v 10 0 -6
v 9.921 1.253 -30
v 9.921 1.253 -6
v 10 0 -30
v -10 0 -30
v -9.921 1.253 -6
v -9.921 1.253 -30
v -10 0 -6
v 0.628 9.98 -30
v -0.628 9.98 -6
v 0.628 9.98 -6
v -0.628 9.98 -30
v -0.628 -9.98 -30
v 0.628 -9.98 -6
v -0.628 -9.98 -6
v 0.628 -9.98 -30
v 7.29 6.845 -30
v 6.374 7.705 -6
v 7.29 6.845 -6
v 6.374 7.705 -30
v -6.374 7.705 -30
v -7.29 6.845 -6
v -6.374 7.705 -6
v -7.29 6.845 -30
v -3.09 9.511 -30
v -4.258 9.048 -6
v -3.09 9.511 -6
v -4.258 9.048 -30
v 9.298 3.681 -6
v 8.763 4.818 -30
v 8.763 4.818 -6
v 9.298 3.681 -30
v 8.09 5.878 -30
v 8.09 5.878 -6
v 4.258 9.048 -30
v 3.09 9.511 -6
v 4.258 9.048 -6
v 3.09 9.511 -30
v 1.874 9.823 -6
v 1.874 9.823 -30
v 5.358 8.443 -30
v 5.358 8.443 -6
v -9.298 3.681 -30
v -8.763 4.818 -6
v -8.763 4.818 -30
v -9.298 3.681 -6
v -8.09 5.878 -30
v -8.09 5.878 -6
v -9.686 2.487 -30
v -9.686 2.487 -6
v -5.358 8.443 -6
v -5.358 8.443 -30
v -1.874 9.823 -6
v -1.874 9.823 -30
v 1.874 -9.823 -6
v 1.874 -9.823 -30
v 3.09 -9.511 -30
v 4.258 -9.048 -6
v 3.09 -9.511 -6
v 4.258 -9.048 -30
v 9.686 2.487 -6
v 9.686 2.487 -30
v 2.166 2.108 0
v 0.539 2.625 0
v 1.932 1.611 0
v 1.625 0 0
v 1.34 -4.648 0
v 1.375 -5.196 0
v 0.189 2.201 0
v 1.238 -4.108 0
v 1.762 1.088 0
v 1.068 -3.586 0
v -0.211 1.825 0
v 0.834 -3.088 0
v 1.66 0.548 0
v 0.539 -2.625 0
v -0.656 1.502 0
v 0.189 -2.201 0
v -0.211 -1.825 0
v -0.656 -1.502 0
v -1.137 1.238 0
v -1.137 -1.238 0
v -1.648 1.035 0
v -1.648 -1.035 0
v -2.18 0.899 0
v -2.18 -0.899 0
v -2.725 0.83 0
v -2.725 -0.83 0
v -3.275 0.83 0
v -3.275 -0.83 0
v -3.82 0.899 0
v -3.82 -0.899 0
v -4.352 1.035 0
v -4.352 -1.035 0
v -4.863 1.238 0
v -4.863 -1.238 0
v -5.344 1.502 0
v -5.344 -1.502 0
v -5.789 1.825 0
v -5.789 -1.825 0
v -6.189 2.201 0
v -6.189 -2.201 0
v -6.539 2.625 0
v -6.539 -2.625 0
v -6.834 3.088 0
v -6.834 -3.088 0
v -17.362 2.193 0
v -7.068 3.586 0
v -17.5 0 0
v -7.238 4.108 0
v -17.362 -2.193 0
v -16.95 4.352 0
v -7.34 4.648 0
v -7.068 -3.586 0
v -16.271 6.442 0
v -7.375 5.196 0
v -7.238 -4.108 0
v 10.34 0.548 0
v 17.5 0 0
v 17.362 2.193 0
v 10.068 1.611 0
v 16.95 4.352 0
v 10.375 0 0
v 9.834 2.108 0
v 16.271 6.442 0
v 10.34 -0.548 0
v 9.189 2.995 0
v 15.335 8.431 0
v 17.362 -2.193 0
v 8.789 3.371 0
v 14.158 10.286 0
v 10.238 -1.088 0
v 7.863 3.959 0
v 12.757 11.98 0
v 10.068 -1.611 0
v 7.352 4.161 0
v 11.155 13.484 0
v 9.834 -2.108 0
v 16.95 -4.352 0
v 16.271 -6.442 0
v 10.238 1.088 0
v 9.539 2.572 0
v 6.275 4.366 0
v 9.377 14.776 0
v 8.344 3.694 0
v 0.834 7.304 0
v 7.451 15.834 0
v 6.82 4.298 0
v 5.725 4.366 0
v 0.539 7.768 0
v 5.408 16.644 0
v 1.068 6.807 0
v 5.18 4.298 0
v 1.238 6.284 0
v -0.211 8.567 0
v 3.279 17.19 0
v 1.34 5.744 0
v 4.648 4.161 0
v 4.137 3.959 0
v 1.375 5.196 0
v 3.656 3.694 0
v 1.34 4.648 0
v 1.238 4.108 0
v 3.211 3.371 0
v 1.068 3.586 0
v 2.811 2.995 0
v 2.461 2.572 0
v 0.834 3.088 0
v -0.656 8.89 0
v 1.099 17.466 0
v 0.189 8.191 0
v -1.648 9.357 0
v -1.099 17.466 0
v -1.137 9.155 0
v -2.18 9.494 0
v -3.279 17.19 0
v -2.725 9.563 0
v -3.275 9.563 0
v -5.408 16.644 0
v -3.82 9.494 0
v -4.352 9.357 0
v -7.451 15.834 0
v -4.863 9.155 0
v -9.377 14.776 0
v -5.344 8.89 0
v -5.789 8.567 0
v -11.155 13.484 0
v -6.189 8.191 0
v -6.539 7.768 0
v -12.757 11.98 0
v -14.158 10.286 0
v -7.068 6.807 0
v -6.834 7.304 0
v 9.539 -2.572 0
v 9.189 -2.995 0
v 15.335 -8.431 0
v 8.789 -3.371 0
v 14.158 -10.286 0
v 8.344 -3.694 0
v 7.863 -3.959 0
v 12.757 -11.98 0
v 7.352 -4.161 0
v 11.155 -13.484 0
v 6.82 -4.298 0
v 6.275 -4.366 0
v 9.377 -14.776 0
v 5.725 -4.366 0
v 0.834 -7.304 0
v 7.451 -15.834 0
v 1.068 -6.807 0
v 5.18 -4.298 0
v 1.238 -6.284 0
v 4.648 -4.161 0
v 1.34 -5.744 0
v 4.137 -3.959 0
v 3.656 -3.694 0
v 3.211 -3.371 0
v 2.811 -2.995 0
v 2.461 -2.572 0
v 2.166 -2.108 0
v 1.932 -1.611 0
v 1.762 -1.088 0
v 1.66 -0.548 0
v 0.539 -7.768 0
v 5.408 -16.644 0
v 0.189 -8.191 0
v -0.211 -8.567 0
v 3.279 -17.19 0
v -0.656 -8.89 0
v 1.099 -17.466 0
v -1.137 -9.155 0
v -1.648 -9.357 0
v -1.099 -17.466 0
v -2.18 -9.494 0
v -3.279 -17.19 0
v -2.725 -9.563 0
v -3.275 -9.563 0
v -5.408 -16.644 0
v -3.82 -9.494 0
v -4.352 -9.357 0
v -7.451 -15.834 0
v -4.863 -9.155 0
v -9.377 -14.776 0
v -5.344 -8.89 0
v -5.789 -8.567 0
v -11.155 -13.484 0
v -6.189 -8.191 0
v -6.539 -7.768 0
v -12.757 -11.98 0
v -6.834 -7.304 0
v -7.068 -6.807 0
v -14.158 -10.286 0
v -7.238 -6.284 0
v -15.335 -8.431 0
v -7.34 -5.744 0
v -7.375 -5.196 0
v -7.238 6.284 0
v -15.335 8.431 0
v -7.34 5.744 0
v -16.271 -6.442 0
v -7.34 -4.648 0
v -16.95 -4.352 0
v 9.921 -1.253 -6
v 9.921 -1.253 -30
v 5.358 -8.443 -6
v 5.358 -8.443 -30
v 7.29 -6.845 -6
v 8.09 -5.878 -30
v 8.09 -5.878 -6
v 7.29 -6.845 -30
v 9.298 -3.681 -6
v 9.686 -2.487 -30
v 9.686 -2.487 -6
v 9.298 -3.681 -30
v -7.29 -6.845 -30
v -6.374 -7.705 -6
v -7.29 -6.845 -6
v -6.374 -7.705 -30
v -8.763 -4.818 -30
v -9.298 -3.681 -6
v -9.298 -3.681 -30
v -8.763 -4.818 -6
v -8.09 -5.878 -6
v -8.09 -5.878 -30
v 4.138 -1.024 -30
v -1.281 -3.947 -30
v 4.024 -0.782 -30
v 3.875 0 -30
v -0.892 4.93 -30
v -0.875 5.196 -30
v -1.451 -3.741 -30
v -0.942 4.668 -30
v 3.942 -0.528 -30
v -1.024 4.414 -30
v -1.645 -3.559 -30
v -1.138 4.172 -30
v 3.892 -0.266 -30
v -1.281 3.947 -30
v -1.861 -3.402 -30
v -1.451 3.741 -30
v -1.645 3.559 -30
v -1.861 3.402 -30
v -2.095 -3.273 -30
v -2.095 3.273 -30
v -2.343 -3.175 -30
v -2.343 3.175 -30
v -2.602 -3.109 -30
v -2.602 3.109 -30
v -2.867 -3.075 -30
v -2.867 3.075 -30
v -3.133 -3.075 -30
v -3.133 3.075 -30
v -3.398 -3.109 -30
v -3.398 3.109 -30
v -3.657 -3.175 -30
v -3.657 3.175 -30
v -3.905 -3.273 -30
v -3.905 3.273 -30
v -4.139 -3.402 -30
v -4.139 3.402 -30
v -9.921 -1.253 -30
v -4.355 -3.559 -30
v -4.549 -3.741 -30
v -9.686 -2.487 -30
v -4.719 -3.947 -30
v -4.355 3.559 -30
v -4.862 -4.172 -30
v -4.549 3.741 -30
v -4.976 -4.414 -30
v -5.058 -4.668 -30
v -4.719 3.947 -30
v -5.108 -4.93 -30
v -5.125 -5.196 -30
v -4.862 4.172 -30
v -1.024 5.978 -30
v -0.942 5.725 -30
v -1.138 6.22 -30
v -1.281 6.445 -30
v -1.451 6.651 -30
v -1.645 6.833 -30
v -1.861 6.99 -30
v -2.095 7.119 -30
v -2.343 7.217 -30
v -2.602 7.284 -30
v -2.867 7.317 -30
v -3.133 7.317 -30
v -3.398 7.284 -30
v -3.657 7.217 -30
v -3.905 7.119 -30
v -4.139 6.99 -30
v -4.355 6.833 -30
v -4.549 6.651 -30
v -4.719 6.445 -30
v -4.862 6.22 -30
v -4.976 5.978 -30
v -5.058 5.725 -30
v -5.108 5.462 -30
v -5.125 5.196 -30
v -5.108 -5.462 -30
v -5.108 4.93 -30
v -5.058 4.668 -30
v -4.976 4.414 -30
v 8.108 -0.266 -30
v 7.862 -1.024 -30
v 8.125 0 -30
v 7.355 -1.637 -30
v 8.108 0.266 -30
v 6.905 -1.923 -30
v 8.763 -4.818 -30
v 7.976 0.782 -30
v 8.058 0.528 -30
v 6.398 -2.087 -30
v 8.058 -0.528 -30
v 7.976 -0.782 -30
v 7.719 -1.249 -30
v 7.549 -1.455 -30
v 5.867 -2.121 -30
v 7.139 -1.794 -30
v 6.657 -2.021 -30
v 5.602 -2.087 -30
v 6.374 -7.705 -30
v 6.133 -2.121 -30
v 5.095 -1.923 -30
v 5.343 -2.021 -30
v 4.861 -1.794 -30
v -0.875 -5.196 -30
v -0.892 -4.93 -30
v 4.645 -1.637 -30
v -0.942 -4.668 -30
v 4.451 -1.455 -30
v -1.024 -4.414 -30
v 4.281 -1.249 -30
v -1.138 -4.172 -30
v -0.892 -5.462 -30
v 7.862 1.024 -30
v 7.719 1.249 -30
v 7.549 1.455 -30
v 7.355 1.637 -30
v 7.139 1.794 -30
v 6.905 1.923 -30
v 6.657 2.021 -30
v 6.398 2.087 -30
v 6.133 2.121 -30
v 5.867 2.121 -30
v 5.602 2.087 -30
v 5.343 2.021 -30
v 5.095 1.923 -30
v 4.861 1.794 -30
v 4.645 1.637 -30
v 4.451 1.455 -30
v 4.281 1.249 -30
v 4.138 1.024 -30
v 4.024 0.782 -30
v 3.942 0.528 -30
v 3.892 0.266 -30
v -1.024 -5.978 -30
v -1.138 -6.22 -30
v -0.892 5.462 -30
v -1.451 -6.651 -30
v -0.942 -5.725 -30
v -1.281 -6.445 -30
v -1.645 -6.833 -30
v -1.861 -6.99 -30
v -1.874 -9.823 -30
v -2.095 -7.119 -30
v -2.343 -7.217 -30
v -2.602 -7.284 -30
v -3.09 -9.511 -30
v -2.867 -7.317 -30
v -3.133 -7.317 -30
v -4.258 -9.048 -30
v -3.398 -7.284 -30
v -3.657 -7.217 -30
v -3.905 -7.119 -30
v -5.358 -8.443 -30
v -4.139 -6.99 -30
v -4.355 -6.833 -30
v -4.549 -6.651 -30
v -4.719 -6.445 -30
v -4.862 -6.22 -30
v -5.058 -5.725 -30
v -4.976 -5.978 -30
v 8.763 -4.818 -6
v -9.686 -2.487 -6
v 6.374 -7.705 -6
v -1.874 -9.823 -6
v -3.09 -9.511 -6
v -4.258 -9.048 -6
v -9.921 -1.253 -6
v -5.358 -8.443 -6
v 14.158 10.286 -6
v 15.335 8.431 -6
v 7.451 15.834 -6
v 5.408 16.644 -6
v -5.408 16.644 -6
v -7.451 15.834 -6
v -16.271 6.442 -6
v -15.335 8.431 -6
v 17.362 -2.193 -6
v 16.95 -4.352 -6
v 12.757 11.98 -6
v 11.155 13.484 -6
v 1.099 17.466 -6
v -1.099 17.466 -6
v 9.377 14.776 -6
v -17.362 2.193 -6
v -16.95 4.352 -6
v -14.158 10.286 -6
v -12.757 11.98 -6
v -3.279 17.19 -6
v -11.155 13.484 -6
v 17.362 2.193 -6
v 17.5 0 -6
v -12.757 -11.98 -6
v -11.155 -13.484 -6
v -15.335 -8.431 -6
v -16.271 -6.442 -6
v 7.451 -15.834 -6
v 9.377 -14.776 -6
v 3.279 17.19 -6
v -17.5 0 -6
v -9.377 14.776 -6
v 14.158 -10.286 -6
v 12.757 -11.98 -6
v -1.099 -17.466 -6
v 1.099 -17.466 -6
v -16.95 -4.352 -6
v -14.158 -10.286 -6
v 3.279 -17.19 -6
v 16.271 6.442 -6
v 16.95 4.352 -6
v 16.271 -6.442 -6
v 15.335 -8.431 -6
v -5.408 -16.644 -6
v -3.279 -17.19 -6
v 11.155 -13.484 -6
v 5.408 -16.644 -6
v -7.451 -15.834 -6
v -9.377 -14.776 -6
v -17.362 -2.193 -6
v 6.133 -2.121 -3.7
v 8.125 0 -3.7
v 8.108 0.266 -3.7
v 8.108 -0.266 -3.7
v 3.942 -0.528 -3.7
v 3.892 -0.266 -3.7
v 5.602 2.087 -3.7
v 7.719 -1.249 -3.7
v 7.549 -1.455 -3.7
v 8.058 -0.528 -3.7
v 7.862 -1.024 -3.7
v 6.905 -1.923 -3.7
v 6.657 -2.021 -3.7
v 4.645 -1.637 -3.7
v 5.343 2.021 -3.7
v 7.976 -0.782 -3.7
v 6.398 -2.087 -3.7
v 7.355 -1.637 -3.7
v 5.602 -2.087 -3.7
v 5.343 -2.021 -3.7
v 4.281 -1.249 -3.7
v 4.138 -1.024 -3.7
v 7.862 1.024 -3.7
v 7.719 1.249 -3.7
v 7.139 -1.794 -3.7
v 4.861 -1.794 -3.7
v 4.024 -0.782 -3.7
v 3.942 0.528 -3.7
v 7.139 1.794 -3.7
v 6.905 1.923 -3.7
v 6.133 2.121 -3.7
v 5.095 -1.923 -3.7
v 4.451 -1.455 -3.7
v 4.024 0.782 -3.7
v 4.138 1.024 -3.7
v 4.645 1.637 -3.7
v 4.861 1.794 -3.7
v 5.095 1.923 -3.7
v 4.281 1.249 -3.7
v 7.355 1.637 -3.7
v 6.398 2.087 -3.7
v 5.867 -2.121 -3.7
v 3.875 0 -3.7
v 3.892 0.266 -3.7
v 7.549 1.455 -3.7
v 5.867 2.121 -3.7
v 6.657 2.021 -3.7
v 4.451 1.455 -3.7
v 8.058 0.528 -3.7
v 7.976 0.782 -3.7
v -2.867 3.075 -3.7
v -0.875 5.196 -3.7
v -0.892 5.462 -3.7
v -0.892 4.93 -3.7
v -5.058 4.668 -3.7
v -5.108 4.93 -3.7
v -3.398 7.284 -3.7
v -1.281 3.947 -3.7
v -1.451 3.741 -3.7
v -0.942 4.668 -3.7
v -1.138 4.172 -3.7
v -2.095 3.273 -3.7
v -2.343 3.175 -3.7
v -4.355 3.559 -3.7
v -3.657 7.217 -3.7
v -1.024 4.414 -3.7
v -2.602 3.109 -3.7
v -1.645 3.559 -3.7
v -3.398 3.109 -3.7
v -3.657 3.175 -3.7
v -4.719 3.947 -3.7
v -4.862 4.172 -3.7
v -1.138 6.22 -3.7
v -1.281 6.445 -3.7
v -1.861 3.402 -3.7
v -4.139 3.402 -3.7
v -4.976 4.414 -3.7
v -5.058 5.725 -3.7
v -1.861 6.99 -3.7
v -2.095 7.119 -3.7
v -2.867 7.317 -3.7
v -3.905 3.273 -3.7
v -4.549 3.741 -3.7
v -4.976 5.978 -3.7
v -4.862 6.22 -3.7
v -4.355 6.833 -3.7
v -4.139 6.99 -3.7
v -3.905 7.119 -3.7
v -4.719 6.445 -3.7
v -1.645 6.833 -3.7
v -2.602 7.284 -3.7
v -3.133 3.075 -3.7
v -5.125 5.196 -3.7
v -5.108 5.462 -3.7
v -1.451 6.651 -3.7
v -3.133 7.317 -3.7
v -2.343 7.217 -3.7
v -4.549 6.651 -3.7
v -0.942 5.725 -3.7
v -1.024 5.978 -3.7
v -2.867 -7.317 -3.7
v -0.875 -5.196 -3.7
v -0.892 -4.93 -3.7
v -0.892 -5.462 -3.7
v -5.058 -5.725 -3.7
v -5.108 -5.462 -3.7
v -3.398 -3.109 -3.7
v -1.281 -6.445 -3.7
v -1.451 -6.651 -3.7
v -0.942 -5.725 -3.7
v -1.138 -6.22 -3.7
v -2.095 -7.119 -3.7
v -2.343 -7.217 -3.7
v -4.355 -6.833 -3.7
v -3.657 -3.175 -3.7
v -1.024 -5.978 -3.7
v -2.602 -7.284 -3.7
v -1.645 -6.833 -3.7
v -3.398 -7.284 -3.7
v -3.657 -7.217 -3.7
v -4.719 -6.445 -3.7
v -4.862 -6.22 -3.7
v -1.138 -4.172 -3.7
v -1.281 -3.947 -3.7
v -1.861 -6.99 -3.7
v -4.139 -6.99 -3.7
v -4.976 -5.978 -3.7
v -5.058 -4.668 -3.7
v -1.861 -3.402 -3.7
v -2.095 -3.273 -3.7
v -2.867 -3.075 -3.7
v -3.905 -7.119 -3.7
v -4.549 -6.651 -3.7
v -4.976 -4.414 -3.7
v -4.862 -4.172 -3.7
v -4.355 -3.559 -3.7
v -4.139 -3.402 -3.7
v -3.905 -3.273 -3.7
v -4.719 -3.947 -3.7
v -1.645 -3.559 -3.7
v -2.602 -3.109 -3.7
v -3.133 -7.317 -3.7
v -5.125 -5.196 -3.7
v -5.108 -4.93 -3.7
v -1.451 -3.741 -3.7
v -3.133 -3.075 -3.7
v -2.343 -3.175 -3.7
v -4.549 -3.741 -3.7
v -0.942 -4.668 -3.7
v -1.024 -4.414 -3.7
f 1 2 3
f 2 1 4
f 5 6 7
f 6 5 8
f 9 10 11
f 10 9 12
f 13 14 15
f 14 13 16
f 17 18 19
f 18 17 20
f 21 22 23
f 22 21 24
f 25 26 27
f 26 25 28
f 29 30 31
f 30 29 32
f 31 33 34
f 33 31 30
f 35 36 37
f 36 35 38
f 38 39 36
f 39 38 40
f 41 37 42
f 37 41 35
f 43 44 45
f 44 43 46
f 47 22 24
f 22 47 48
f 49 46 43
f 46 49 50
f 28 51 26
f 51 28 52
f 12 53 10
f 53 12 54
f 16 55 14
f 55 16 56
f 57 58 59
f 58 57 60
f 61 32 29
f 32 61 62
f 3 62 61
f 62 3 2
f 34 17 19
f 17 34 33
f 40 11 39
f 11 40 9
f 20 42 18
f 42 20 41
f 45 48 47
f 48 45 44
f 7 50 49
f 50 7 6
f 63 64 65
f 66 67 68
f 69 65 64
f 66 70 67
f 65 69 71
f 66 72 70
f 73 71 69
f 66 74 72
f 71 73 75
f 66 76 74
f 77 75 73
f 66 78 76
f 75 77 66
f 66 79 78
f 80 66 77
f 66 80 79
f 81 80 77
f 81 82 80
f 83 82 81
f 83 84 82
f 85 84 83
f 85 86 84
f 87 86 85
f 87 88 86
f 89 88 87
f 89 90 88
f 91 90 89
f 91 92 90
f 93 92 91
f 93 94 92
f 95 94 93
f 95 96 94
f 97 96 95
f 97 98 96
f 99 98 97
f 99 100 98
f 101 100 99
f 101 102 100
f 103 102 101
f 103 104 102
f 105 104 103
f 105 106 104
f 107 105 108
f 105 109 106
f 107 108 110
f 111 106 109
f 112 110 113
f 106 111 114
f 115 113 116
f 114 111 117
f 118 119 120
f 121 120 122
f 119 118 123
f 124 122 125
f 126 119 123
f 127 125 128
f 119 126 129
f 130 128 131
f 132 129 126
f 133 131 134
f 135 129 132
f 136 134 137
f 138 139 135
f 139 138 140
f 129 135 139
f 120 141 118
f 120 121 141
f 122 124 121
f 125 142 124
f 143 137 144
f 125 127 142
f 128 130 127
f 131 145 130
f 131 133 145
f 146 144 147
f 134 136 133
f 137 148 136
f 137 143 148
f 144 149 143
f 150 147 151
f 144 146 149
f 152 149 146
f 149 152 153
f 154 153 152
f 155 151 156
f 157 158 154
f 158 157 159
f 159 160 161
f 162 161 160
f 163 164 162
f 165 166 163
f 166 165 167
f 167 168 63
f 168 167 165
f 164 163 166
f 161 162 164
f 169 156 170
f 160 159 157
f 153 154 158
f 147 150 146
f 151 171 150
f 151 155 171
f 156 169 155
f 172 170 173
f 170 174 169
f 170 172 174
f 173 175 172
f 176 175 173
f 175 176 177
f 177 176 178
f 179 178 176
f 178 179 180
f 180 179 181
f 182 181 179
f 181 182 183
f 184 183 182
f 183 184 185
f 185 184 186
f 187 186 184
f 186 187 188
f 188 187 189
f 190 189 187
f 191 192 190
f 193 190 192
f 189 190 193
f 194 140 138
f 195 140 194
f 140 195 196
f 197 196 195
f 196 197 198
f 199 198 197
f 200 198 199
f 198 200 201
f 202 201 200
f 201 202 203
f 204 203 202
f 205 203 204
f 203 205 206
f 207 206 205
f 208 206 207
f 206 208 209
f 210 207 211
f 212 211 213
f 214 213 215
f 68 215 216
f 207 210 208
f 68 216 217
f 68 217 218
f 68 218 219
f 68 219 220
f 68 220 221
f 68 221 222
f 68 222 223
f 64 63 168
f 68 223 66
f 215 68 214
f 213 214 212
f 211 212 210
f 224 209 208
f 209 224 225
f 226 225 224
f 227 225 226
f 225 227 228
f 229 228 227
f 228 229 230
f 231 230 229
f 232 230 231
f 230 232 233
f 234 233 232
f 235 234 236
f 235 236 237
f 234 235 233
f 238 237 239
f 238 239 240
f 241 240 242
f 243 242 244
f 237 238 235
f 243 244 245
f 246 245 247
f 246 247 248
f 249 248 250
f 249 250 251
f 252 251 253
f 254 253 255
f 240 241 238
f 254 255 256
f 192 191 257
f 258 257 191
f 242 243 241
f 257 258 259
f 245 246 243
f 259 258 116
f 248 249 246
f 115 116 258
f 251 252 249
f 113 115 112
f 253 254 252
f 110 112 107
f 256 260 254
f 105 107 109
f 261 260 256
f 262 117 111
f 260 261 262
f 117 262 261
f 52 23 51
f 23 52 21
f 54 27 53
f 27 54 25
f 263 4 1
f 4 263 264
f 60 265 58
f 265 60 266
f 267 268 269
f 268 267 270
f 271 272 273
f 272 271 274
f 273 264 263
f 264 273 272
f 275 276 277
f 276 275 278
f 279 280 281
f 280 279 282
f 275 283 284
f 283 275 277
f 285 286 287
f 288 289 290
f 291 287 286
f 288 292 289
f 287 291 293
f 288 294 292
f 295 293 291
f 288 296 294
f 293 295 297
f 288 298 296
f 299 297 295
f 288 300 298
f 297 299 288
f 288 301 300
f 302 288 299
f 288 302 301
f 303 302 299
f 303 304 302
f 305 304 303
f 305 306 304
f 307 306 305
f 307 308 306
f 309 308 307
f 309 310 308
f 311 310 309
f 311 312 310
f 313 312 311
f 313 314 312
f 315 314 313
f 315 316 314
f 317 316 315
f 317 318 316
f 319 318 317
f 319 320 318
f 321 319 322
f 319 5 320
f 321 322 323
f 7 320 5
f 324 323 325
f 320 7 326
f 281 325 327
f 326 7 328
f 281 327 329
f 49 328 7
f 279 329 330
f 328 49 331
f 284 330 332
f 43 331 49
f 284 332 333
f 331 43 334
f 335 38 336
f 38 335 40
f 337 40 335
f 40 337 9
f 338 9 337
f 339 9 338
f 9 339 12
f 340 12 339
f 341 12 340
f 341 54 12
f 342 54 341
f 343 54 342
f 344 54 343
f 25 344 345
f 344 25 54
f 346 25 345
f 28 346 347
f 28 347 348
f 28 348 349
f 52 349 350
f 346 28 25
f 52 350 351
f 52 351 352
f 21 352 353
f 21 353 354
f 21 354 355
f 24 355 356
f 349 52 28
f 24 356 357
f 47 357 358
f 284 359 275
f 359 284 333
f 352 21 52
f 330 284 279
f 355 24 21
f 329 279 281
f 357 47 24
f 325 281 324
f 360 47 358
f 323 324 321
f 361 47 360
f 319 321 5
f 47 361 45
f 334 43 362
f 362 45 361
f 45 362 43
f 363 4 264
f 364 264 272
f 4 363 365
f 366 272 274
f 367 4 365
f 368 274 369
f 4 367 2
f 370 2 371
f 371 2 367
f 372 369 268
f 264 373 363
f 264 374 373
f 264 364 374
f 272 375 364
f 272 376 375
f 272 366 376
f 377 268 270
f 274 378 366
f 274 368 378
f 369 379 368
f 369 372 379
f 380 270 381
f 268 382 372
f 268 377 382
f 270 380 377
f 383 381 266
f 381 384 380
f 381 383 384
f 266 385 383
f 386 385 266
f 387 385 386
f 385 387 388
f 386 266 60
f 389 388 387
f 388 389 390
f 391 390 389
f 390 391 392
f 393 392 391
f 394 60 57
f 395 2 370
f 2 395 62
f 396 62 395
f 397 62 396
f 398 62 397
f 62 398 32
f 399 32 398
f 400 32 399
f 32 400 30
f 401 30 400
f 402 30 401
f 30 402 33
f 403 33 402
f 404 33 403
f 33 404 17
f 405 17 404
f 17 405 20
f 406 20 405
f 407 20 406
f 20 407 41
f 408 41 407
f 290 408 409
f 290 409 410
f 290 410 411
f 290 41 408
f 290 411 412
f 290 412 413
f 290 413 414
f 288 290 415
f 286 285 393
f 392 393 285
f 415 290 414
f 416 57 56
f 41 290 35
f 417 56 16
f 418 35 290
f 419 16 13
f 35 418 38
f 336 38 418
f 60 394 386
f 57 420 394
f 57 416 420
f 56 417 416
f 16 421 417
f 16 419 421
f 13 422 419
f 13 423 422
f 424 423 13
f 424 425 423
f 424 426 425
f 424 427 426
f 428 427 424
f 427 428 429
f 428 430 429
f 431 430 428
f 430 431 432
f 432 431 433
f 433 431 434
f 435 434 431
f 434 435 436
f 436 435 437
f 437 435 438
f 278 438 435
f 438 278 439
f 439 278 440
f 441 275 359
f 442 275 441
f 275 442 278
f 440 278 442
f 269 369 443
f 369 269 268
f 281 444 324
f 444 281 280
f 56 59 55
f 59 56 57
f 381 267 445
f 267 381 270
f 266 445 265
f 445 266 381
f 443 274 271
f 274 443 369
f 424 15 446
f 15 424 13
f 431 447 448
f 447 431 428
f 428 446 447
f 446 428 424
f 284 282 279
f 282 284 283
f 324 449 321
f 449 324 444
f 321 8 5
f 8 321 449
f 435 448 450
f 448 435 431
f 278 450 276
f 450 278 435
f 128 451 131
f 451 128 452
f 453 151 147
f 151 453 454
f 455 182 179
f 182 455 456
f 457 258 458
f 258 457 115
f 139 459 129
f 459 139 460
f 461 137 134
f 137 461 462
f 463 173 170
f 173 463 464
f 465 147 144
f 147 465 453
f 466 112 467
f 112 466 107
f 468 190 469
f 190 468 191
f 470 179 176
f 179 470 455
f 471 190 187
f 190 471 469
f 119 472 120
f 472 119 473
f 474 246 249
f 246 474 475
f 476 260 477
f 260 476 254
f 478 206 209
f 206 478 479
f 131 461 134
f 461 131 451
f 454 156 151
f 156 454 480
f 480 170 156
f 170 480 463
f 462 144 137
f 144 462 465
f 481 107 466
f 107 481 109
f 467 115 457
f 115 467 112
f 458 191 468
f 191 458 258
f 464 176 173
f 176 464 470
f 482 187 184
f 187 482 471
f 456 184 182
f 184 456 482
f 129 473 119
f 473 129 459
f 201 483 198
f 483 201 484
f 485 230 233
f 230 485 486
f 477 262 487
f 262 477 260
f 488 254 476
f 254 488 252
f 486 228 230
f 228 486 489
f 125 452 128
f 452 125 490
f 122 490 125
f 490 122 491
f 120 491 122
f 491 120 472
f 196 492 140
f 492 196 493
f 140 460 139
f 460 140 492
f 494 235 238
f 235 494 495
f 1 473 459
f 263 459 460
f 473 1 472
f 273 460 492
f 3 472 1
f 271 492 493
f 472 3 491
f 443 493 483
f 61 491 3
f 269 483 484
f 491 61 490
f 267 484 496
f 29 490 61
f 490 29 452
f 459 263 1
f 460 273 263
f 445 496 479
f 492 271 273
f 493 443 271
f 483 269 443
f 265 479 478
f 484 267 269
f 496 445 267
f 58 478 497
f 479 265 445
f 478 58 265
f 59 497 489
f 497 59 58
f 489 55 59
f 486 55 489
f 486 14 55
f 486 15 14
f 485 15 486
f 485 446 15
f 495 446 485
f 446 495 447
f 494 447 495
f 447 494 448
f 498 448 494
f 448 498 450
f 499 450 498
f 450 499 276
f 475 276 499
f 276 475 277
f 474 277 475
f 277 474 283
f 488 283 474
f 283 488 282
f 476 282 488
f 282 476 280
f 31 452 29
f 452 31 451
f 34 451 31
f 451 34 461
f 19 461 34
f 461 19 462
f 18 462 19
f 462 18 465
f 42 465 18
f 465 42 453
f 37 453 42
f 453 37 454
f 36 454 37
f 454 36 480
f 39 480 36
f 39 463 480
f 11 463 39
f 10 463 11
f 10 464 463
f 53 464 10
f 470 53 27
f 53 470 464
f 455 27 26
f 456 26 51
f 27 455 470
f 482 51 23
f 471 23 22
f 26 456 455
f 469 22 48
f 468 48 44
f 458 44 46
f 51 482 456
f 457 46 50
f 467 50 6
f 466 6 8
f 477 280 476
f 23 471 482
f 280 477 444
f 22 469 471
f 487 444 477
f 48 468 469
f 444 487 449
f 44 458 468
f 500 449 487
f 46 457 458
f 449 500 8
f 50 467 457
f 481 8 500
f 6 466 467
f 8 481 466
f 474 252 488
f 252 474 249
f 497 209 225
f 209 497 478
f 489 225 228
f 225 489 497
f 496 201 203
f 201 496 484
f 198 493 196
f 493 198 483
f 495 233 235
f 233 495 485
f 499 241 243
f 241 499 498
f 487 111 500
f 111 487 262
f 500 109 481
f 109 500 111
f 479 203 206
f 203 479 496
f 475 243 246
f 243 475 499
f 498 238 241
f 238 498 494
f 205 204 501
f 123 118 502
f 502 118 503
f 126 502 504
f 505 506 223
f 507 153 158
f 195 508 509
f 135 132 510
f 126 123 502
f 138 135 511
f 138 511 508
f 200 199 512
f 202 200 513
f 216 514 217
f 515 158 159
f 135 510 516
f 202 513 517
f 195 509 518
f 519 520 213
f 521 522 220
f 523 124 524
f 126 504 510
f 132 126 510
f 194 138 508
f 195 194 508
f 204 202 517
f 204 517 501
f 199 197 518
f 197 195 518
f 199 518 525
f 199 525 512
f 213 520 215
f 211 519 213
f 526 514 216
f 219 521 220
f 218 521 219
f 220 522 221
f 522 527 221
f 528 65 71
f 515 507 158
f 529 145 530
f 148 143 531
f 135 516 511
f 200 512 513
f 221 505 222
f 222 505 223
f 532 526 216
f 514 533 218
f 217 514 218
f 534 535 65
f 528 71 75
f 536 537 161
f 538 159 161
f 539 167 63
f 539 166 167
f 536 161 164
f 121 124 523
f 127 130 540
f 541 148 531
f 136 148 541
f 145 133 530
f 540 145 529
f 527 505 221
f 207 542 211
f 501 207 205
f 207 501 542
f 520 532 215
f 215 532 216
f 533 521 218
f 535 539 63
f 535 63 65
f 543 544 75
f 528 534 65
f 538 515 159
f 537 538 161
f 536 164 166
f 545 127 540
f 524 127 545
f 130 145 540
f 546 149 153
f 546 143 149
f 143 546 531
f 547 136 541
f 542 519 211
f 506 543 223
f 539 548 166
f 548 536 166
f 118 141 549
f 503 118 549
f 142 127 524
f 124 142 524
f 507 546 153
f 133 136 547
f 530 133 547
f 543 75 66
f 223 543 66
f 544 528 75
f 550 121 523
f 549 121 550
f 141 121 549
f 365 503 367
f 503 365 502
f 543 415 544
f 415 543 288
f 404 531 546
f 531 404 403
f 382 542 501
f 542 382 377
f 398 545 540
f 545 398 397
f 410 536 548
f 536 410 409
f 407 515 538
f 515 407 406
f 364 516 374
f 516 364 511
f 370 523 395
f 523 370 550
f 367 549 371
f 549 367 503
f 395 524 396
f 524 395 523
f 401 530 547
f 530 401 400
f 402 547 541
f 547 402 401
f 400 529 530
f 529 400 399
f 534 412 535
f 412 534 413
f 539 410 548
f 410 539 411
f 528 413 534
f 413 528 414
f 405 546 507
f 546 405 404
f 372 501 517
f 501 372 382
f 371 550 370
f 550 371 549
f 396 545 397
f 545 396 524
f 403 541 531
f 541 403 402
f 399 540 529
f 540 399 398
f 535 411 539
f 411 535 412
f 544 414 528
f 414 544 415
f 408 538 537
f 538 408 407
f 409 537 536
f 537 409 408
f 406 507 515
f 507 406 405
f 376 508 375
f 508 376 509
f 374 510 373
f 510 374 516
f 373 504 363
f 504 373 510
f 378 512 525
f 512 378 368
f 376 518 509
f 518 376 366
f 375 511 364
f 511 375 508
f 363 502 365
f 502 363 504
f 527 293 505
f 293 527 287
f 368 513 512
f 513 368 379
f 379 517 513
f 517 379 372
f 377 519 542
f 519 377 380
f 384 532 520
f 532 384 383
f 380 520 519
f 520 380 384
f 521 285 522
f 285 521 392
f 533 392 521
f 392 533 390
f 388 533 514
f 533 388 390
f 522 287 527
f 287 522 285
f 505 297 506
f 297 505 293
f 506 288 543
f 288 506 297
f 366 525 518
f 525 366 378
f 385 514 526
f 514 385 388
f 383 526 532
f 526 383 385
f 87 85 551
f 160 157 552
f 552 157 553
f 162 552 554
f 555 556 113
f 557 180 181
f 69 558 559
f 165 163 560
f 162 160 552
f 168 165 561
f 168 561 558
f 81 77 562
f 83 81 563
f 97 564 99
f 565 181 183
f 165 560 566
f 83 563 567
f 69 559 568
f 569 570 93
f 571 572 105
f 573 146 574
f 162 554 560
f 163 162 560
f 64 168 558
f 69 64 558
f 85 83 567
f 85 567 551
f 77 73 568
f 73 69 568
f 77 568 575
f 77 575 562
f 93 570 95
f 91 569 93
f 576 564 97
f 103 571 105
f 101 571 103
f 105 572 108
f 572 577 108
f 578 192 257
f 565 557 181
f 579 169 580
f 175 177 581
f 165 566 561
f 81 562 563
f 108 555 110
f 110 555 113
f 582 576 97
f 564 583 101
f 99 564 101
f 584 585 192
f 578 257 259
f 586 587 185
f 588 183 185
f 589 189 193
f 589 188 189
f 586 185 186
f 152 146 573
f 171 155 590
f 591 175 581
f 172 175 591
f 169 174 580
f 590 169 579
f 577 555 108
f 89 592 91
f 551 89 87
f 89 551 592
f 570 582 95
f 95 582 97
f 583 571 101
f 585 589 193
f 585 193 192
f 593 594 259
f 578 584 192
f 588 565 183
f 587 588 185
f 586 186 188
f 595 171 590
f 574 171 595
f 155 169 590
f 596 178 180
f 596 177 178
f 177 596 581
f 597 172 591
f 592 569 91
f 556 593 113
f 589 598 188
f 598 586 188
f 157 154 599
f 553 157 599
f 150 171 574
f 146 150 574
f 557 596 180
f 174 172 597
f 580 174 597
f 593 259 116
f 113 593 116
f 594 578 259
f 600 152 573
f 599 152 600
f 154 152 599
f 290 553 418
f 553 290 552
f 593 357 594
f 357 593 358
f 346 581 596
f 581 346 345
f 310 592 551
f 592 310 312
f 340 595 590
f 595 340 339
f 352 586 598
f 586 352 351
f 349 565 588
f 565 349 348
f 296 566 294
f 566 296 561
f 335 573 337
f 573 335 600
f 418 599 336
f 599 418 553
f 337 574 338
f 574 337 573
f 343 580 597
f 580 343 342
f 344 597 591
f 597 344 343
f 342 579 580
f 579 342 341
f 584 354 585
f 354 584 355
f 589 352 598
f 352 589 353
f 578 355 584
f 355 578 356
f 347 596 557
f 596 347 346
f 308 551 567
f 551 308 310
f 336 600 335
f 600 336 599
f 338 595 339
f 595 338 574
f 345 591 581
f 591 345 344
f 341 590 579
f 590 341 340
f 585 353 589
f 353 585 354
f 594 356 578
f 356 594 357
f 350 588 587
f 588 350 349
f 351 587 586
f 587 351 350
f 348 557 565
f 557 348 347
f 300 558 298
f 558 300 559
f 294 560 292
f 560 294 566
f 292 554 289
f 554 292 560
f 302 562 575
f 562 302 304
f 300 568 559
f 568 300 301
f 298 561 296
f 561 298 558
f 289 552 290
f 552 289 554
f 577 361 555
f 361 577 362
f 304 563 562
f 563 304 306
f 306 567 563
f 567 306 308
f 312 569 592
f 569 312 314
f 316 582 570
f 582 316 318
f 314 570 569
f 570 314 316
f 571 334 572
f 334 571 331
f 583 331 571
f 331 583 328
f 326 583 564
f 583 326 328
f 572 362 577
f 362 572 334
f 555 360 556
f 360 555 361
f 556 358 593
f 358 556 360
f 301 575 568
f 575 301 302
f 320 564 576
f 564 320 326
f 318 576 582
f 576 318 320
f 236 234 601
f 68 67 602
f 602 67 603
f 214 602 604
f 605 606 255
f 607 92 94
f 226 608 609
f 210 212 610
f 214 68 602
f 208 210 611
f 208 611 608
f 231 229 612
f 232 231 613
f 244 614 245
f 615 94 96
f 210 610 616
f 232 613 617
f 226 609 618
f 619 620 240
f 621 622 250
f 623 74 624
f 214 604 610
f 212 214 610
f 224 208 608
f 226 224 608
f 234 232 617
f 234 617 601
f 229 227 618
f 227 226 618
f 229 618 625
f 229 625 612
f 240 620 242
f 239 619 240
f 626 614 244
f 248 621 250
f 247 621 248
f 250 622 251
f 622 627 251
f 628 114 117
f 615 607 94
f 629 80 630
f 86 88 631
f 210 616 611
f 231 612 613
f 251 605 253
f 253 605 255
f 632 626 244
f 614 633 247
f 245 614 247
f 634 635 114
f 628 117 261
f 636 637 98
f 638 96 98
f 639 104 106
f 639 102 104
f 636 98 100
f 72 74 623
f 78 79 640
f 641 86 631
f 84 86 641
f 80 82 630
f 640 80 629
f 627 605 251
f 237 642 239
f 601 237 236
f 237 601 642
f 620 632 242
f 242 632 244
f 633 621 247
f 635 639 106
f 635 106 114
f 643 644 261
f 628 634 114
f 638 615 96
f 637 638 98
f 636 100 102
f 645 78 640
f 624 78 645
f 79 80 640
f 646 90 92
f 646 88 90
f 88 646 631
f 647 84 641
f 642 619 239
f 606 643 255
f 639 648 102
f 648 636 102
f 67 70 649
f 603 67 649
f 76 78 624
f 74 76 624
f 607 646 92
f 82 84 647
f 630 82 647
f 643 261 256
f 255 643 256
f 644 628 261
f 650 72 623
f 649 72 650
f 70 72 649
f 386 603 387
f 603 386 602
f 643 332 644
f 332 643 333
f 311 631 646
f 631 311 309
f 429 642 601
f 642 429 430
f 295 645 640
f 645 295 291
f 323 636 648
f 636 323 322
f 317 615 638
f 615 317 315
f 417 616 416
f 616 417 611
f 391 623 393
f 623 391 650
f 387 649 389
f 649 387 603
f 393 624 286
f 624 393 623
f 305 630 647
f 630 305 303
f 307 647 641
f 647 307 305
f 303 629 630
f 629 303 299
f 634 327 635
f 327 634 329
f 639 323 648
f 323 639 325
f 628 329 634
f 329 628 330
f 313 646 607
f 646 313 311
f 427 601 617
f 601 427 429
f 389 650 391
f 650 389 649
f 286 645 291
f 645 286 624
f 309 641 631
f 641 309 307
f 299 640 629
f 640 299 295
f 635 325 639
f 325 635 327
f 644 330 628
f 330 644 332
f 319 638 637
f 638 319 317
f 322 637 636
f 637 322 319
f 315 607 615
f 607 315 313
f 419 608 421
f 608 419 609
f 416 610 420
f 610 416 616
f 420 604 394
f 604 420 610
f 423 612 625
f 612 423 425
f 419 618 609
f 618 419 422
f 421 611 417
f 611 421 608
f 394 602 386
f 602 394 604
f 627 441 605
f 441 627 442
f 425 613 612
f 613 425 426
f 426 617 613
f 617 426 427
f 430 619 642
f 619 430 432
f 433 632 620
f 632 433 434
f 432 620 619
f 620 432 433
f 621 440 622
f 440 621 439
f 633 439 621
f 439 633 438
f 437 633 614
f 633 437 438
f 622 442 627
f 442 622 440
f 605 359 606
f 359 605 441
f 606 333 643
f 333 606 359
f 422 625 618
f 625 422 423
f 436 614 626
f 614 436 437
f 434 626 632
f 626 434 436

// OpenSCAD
$fn = 50;


difference() {
	union() {
		translate(v = [0, 0, -30.0000000000]) {
			cylinder(h = 30, r = 10.0000000000);
		}
		translate(v = [0, 0, -6.0000000000]) {
			cylinder(h = 6, r = 17.5000000000);
		}
	}
	union() {
		translate(v = [6.0000000000, 0.0000000000, 0]) {
			rotate(a = [0, 0, 0]) {
				difference() {
					union() {
						#translate(v = [0, 0, -30.0000000000]) {
							cylinder(h = 30, r = 2.0000000000);
						}
						#translate(v = [0, 0, -3.7000000000]) {
							cylinder(h = 3.7000000000, r = 10.0000000000, r1 = 2.1250000000, r2 = 4.3750000000);
						}
						#translate(v = [0, 0, -30.0000000000]) {
							cylinder(h = 30, r = 2.1250000000);
						}
						#translate(v = [0, 0, -30.0000000000]) {
							cylinder(h = 30, r = 2.0000000000);
						}
					}
					union();
				}
			}
		}
		translate(v = [-3.0000000000, 5.1961524227, 0]) {
			rotate(a = [0, 0, 0]) {
				difference() {
					union() {
						#translate(v = [0, 0, -30.0000000000]) {
							cylinder(h = 30, r = 2.0000000000);
						}
						#translate(v = [0, 0, -3.7000000000]) {
							cylinder(h = 3.7000000000, r = 10.0000000000, r1 = 2.1250000000, r2 = 4.3750000000);
						}
						#translate(v = [0, 0, -30.0000000000]) {
							cylinder(h = 30, r = 2.1250000000);
						}
						#translate(v = [0, 0, -30.0000000000]) {
							cylinder(h = 30, r = 2.0000000000);
						}
					}
					union();
				}
			}
		}
		translate(v = [-3.0000000000, -5.1961524227, 0]) {
			rotate(a = [0, 0, 0]) {
				difference() {
					union() {
						#translate(v = [0, 0, -30.0000000000]) {
							cylinder(h = 30, r = 2.0000000000);
						}
						#translate(v = [0, 0, -3.7000000000]) {
							cylinder(h = 3.7000000000, r = 10.0000000000, r1 = 2.1250000000, r2 = 4.3750000000);
						}
						#translate(v = [0, 0, -30.0000000000]) {
							cylinder(h = 30, r = 2.1250000000);
						}
						#translate(v = [0, 0, -30.0000000000]) {
							cylinder(h = 30, r = 2.0000000000);
						}
					}
					union();
				}
			}
		}
	}
}
